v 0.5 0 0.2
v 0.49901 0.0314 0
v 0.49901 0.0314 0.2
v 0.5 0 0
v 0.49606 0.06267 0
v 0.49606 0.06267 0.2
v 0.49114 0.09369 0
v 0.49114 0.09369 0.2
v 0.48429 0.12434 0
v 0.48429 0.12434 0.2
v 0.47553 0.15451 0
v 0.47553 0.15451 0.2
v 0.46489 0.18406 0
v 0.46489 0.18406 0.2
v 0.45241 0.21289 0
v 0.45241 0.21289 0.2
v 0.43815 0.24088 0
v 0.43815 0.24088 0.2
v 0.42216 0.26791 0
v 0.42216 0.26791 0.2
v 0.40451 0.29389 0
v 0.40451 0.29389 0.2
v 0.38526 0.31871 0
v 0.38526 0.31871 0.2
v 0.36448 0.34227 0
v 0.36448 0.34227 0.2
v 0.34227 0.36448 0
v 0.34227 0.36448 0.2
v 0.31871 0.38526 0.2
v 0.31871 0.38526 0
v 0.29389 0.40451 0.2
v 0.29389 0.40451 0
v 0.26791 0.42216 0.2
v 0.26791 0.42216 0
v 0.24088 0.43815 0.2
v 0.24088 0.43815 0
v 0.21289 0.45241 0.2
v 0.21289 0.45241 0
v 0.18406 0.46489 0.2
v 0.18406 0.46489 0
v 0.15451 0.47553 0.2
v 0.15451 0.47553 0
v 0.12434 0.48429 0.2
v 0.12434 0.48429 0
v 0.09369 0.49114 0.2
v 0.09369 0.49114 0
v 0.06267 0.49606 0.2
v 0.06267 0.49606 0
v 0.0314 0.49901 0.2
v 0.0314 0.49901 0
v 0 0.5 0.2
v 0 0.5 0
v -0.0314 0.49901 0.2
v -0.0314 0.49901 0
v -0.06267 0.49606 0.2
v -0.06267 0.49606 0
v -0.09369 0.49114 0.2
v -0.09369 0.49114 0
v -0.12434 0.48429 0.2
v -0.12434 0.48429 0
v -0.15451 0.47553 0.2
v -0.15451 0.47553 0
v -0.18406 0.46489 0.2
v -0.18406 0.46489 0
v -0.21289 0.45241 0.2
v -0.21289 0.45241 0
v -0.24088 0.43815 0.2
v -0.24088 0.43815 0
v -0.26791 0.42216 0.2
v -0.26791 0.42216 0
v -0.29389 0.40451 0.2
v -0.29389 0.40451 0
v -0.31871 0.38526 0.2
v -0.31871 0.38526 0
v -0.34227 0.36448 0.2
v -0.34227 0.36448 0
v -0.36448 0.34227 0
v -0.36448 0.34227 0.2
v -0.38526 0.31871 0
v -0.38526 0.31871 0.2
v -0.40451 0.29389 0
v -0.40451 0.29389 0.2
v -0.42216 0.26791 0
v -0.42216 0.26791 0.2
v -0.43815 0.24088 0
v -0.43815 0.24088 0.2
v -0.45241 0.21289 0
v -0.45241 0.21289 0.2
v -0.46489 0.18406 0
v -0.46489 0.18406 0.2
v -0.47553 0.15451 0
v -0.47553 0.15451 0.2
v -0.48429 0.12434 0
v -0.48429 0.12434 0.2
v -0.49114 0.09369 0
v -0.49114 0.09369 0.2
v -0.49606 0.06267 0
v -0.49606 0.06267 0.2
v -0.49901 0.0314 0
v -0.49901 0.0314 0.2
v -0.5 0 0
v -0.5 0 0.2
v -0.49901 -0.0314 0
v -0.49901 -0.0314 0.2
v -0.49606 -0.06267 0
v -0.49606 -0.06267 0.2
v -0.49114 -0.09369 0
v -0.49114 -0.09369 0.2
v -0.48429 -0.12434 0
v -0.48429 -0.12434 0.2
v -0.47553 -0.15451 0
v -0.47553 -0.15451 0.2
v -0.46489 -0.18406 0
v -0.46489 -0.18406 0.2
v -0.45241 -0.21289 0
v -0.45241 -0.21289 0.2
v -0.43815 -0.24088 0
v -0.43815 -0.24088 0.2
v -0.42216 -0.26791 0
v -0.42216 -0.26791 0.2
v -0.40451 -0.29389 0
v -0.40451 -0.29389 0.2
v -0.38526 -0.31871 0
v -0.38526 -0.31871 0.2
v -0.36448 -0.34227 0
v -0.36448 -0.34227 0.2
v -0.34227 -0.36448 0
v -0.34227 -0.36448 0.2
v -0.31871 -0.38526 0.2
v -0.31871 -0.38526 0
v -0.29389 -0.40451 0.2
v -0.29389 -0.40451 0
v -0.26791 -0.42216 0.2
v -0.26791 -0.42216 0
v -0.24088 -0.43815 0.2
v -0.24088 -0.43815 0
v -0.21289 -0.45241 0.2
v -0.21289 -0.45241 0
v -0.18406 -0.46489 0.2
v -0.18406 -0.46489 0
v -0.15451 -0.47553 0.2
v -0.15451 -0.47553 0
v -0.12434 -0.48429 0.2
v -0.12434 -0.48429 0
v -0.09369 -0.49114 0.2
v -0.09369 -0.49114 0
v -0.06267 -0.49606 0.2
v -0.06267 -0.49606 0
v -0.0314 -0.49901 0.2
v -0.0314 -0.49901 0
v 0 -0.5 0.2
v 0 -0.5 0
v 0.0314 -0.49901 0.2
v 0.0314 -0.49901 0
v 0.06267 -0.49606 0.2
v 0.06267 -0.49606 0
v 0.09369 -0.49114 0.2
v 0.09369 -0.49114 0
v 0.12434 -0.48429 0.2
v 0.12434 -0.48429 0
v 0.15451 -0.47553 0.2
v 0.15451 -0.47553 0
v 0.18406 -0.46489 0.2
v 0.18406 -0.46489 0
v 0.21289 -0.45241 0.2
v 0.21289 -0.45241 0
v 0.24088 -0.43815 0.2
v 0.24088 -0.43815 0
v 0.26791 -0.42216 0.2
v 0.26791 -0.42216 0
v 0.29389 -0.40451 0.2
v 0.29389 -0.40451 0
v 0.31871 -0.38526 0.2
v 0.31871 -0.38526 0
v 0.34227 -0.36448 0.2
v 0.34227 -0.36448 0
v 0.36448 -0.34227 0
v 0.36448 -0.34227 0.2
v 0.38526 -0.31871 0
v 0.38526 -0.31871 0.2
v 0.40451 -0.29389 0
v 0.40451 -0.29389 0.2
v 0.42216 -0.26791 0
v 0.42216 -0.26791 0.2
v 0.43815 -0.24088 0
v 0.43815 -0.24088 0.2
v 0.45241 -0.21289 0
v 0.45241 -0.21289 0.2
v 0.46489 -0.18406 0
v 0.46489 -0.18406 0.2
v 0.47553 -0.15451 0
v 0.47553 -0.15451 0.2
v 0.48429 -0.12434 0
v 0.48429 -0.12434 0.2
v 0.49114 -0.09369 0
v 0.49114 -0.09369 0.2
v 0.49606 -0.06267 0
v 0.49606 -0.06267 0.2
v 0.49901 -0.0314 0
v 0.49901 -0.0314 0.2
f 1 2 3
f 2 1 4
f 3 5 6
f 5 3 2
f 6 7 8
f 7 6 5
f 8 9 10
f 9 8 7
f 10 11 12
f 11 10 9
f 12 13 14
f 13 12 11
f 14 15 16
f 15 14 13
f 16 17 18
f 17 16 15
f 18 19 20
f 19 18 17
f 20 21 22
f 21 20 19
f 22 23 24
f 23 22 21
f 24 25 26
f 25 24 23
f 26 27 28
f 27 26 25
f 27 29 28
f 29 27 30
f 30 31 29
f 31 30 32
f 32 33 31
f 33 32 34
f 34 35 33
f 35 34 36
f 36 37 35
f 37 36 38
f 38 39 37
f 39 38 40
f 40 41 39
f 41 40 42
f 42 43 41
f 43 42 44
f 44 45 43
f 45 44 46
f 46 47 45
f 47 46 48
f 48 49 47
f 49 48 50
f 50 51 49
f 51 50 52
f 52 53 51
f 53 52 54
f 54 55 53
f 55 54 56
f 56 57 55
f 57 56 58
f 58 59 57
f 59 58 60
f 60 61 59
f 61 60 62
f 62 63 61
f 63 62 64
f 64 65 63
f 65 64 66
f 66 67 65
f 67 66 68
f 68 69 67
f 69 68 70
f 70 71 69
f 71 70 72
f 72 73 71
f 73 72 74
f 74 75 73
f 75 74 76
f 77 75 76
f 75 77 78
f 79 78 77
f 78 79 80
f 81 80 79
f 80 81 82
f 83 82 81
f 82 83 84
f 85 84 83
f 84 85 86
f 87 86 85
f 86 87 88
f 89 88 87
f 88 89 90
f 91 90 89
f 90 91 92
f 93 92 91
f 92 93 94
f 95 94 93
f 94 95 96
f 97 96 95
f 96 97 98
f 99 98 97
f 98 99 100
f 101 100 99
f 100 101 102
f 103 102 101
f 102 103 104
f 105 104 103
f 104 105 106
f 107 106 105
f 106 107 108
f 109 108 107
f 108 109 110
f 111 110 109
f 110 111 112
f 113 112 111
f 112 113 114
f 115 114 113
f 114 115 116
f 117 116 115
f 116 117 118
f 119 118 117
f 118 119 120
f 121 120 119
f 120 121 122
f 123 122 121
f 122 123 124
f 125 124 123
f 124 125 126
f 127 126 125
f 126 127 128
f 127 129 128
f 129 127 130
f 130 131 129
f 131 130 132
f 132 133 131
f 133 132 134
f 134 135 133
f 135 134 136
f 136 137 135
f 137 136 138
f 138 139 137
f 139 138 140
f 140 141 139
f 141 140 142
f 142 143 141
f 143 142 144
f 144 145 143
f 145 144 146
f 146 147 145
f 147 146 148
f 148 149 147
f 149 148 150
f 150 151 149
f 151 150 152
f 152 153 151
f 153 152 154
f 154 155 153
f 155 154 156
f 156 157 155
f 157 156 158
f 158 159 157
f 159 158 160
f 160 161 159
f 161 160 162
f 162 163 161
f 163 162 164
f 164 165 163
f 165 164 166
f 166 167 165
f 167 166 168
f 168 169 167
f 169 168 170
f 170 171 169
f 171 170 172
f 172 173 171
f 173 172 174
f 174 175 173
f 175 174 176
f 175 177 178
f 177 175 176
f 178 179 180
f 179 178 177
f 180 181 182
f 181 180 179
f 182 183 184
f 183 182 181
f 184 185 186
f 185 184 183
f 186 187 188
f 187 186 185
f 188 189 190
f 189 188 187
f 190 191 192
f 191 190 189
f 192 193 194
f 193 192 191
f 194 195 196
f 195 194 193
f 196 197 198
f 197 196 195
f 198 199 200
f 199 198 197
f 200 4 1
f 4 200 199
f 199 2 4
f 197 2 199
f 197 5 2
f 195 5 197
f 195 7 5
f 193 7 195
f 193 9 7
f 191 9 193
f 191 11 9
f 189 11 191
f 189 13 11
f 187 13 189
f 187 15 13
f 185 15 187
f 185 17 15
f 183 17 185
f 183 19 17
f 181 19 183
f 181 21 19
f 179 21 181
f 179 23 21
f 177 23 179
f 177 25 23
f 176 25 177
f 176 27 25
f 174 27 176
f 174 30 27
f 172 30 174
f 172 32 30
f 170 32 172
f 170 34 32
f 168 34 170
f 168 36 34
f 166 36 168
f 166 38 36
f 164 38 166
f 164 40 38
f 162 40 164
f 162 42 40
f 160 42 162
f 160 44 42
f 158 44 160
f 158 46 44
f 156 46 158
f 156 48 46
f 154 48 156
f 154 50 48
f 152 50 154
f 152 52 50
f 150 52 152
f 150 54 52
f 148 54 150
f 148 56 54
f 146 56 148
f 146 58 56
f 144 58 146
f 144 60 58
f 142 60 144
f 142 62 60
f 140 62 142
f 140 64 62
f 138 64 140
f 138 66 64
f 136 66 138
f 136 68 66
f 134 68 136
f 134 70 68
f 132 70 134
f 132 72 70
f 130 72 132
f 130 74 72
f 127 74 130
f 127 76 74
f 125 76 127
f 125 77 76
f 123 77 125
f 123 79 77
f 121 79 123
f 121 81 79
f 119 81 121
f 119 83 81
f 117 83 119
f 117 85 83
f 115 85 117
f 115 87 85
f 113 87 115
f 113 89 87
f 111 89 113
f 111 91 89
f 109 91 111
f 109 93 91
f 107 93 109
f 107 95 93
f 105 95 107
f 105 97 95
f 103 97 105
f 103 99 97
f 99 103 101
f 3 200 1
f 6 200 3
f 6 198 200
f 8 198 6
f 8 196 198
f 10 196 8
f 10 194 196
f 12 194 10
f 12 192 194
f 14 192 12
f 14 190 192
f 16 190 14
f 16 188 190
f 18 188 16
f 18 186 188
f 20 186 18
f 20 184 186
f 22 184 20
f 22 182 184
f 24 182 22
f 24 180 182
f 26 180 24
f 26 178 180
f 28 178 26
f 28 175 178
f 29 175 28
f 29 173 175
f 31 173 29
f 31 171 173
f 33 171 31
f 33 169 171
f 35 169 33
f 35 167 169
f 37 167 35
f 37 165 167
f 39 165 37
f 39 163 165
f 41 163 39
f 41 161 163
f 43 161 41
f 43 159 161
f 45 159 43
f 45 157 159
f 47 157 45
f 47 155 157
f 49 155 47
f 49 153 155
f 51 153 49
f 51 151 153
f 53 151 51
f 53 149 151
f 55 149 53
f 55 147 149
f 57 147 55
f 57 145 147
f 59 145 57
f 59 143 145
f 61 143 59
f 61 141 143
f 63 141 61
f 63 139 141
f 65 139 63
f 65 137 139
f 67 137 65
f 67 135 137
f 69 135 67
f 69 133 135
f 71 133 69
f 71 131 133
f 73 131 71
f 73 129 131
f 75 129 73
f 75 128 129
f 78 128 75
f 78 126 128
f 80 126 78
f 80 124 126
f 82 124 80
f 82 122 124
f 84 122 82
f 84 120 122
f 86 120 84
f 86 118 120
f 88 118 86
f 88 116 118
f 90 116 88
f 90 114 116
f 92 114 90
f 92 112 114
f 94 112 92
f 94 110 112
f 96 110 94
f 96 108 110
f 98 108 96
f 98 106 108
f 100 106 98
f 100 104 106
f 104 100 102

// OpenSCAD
base1(100/100, 20/100);

// The $fn parameter will influence all objects inside this module
// It can, optionally, be overridden when instantiating the module
module base1(size=50, height=20, $fn=100) {
    // Temporary variables
    hole = size/2;
    cylinderHeight = size * 0.25;
    cylinder(d=size, h=height);

    // One positive object (sphere) and three negative objects (cylinders)
    /*
    difference() {
        
        cylinder(d=hole, h=cylinderHeight, center=true);
        // The '#' operator highlights the object
        #rotate([90, 0, 0]) cylinder(d=hole, h=cylinderHeight, center=true);
        rotate([0, 90, 0]) cylinder(d=hole, h=cylinderHeight, center=true);
    }
    */
}
